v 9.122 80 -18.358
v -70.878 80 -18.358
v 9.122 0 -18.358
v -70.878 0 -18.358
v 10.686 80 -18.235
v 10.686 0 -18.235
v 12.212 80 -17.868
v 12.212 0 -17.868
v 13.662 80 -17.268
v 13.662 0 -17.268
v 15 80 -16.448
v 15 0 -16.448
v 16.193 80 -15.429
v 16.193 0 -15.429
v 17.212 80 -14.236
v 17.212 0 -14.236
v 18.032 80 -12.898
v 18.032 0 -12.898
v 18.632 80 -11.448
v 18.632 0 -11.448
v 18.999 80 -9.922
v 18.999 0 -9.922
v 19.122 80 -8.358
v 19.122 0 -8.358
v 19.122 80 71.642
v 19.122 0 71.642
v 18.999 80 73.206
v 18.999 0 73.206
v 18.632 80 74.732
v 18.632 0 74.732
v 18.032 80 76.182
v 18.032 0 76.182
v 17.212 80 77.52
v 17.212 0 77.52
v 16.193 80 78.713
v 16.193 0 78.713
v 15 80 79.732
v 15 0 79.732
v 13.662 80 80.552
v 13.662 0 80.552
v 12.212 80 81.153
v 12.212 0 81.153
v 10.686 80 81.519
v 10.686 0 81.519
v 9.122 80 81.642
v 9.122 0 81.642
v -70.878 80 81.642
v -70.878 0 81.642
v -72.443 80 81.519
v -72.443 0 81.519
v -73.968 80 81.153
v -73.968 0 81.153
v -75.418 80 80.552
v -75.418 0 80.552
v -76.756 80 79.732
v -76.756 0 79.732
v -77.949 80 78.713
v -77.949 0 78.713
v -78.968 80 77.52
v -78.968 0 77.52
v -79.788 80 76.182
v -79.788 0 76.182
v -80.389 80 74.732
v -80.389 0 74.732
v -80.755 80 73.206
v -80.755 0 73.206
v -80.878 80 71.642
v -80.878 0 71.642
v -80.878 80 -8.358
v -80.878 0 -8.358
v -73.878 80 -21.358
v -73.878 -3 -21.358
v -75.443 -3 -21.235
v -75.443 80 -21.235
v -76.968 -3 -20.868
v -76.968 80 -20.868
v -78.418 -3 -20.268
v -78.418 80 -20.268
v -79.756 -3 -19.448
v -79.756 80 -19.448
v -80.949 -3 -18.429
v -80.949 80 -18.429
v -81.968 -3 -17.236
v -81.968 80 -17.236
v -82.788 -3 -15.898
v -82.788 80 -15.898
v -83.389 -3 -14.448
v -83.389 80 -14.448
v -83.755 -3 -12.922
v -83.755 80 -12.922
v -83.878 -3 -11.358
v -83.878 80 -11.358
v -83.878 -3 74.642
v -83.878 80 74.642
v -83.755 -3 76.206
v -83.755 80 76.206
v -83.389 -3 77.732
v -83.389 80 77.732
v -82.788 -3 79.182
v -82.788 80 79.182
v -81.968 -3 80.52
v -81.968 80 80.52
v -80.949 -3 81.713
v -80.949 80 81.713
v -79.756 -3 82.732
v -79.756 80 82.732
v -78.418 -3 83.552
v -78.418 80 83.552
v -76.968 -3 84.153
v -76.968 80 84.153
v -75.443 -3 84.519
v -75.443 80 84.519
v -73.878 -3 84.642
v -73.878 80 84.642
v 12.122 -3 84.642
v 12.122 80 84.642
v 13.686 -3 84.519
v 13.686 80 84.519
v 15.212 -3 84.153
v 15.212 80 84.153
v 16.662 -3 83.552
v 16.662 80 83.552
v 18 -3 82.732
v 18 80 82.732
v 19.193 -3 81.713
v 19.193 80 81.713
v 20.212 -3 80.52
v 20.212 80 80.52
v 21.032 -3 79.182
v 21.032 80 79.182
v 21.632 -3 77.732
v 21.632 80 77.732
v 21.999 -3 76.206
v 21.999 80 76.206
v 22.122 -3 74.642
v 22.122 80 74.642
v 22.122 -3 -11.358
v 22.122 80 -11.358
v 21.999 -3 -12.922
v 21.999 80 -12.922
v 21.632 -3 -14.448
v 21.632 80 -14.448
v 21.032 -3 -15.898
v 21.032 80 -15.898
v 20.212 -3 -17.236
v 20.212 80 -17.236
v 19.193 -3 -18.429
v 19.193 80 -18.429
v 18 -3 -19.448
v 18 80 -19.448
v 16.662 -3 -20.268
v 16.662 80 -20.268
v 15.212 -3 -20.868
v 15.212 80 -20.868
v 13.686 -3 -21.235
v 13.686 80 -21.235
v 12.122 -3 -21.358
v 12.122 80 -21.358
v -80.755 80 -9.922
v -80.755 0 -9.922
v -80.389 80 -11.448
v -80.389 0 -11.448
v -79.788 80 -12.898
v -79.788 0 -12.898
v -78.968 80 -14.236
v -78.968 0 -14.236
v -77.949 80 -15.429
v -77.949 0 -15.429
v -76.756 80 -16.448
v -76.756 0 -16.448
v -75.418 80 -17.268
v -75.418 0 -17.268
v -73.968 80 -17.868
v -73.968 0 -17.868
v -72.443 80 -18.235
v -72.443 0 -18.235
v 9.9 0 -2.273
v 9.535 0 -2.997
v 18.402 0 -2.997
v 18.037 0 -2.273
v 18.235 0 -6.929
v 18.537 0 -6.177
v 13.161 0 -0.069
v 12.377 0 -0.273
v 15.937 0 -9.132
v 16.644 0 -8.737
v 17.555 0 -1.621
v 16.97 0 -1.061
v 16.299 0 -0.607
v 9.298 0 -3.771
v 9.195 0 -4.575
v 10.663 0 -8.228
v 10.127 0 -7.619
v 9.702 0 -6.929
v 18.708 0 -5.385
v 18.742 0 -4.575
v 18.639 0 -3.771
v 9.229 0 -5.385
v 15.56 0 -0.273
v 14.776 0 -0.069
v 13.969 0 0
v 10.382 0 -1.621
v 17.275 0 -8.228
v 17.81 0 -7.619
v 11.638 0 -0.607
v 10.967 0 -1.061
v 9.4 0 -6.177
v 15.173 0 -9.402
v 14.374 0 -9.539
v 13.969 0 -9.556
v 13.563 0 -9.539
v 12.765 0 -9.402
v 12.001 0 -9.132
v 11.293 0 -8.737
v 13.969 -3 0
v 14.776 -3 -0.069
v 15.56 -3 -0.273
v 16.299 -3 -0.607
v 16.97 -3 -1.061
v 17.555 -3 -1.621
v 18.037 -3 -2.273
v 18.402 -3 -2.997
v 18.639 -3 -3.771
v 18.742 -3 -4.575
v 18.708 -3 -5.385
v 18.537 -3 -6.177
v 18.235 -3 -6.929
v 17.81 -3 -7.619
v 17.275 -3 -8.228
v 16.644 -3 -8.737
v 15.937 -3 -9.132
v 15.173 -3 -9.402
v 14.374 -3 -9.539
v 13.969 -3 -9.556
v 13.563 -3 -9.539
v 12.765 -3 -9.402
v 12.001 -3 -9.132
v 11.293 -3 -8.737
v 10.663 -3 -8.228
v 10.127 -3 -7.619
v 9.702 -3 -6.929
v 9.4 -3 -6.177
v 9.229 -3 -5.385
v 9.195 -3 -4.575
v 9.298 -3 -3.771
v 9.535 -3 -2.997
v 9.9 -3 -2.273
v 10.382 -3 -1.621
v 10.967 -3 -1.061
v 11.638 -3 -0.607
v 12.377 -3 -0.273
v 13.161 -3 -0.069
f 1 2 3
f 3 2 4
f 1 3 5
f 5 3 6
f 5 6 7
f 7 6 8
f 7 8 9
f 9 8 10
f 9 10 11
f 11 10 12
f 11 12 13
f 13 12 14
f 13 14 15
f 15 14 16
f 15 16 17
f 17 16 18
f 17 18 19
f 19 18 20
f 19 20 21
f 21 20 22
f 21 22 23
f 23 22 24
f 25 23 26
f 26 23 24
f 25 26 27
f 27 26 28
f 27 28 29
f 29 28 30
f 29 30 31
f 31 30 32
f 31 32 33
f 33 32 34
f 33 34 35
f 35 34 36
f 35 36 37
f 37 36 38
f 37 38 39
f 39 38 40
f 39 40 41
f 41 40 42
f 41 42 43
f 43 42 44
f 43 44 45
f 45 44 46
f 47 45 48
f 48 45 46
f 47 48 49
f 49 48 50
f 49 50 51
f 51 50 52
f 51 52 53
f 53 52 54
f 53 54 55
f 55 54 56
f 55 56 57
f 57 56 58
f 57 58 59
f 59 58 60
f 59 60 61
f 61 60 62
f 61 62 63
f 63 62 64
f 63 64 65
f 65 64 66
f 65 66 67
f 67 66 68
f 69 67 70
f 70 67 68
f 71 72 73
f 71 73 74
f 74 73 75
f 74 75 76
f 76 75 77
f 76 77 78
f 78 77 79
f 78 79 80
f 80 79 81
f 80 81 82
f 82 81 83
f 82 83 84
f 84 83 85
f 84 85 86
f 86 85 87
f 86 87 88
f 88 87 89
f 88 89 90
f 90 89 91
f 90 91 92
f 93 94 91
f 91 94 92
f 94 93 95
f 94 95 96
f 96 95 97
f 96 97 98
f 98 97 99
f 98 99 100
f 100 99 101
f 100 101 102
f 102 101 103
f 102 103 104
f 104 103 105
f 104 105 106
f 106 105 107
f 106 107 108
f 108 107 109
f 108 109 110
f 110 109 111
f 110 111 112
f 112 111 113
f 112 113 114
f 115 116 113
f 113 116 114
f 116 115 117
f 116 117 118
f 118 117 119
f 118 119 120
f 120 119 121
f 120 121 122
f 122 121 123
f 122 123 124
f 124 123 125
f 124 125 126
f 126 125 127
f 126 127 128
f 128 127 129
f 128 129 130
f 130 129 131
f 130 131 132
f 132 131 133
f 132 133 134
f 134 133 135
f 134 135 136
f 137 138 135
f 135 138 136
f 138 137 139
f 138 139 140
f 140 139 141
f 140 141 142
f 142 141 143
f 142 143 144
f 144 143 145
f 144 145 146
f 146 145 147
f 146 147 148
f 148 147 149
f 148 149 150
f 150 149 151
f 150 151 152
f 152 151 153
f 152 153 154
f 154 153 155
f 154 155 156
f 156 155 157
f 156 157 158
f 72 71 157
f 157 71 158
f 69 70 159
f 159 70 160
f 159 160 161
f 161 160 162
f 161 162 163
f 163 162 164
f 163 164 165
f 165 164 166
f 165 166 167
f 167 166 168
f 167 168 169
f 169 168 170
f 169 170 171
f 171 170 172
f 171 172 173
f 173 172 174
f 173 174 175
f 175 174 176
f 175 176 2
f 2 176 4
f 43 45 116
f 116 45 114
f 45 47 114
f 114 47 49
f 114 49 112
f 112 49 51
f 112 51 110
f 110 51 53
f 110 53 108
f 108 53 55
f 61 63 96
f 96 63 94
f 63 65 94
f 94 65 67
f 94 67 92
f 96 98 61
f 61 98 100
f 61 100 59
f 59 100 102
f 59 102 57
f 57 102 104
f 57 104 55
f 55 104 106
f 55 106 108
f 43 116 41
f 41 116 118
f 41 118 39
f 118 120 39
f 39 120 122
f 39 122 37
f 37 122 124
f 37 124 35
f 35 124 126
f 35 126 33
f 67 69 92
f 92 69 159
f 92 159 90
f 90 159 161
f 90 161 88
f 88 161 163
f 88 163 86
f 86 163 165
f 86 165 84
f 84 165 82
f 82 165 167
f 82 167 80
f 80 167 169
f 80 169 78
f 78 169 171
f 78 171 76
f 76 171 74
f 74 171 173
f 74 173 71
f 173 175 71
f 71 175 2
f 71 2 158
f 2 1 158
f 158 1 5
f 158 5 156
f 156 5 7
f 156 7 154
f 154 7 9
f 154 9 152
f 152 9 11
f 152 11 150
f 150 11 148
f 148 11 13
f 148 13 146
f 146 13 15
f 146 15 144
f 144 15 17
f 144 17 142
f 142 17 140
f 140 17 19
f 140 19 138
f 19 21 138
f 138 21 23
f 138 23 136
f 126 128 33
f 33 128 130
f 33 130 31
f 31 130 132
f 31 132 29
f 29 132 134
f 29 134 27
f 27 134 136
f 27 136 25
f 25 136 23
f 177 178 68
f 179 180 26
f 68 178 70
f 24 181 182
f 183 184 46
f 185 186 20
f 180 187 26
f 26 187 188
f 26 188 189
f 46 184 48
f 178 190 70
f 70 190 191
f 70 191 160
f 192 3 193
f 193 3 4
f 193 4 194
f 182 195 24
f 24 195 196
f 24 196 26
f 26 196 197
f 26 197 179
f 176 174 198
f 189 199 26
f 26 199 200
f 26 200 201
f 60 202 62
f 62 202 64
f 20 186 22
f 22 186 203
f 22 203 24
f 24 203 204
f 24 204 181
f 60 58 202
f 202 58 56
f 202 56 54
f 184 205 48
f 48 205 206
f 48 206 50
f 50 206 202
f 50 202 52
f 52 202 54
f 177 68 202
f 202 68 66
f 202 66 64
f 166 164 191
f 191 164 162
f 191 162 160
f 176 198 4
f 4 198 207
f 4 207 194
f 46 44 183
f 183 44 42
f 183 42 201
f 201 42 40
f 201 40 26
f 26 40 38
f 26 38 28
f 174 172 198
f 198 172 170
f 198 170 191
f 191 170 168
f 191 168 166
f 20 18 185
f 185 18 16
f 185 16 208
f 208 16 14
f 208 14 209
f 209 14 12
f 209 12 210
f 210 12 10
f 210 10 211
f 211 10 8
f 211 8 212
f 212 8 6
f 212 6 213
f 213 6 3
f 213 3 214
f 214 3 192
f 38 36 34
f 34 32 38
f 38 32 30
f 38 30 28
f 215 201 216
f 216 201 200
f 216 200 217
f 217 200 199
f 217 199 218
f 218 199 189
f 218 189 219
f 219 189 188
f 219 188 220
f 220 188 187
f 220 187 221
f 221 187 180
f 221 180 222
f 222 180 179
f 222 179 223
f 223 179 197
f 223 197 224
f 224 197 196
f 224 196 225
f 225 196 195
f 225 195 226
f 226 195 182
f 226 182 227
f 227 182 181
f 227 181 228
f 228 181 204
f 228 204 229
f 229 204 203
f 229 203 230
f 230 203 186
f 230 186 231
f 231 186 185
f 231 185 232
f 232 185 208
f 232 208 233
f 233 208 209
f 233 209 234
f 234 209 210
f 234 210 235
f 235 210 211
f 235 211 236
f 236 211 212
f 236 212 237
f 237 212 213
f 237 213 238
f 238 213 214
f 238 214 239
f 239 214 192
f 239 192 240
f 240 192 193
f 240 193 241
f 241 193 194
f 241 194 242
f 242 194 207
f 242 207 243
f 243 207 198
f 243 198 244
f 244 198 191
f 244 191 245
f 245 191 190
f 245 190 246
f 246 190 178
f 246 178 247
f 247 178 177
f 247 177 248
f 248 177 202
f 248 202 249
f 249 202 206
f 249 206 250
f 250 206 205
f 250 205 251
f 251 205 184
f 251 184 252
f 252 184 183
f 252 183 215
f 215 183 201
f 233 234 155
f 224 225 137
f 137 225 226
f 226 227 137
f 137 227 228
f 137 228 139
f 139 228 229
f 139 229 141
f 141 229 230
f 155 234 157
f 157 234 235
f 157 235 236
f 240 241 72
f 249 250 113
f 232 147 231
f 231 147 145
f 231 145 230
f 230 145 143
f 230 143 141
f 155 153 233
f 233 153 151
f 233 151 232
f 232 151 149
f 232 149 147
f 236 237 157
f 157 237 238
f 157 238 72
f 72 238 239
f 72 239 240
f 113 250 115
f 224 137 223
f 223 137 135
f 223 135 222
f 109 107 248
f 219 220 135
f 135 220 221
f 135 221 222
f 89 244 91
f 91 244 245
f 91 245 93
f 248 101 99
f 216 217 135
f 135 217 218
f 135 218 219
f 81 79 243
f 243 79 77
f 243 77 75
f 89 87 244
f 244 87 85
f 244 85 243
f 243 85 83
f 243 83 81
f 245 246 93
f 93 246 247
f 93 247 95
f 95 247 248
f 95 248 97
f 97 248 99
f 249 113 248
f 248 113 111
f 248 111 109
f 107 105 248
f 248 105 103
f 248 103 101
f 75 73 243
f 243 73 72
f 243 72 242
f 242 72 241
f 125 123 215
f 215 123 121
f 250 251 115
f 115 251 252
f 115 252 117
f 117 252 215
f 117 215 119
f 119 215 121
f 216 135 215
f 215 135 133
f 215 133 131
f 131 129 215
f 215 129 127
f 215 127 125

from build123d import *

# Parameters (mm, degrees)
BOSS_EXTRUDE1_DEPTH = 80
SKETCH2_R           = 4.778019897
BOSS_EXTRUDE4_DEPTH = 3


with BuildPart() as part:
    # Sketch1 → Boss-Extrude1 (new body)
    with BuildSketch(Plane(origin=(0, 0, 0), x_dir=(1, 0, 0), z_dir=(0, 1, 0))):
        with BuildLine():
            ThreePointArc((-83.878172589, 11.35786802), (-80.949240401, 18.428935832), (-73.878172589, 21.35786802))
            Line((-73.878172589, 21.35786802), (12.121827411, 21.35786802))
            ThreePointArc((12.121827411, 21.35786802), (19.192895223, 18.428935832), (22.121827411, 11.35786802))
            Line((22.121827411, 11.35786802), (22.121827411, -74.64213198))
            ThreePointArc((22.121827411, -74.64213198), (19.192895223, -81.713199792), (12.121827411, -84.64213198))
            Line((12.121827411, -84.64213198), (-73.878172589, -84.64213198))
            ThreePointArc((-73.878172589, -84.64213198), (-80.949240401, -81.713199792), (-83.878172589, -74.64213198))
            Line((-83.878172589, -74.64213198), (-83.878172589, 11.35786802))
        make_face()
        with BuildLine():
            Line((-70.878172589, 18.35786802), (9.121827411, 18.35786802))
            ThreePointArc((9.121827411, 18.35786802), (16.192895223, 15.428935832), (19.121827411, 8.35786802))
            Line((19.121827411, 8.35786802), (19.121827411, -71.64213198))
            ThreePointArc((19.121827411, -71.64213198), (16.192895223, -78.713199792), (9.121827411, -81.64213198))
            Line((9.121827411, -81.64213198), (-70.878172589, -81.64213198))
            ThreePointArc((-70.878172589, -81.64213198), (-77.949240401, -78.713199792), (-80.878172589, -71.64213198))
            Line((-80.878172589, -71.64213198), (-80.878172589, 8.35786802))
            ThreePointArc((-80.878172589, 8.35786802), (-77.949240401, 15.428935832), (-70.878172589, 18.35786802))
        make_face(mode=Mode.SUBTRACT)
    extrude(amount=BOSS_EXTRUDE1_DEPTH)

    # Sketch2 → Boss-Extrude4 (add)
    with BuildSketch(Plane.XZ):
        with BuildLine():
            Line((-83.878172589, 74.64213198), (-83.878172589, -11.35786802))
            ThreePointArc((-83.878172589, -11.35786802), (-80.949240401, -18.428935832), (-73.878172589, -21.35786802))
            Line((-73.878172589, -21.35786802), (12.121827411, -21.35786802))
            ThreePointArc((12.121827411, -21.35786802), (19.192895223, -18.428935832), (22.121827411, -11.35786802))
            Line((22.121827411, -11.35786802), (22.121827411, 74.64213198))
            ThreePointArc((22.121827411, 74.64213198), (19.192895223, 81.713199792), (12.121827411, 84.64213198))
            Line((12.121827411, 84.64213198), (-73.878172589, 84.64213198))
            ThreePointArc((-73.878172589, 84.64213198), (-80.949240401, 81.713199792), (-83.878172589, 74.64213198))
        make_face()
        with BuildLine():
            ThreePointArc((19.121827411, -8.35786802), (16.192895223, -15.428935832), (9.121827411, -18.35786802))
            Line((9.121827411, -18.35786802), (-70.878172589, -18.35786802))
            ThreePointArc((-70.878172589, -18.35786802), (-77.949240401, -15.428935832), (-80.878172589, -8.35786802))
            Line((-80.878172589, -8.35786802), (-80.878172589, 71.64213198))
            ThreePointArc((-80.878172589, 71.64213198), (-77.949240401, 78.713199792), (-70.878172589, 81.64213198))
            Line((-70.878172589, 81.64213198), (9.121827411, 81.64213198))
            ThreePointArc((9.121827411, 81.64213198), (16.192895223, 78.713199792), (19.121827411, 71.64213198))
            Line((19.121827411, 71.64213198), (19.121827411, -8.35786802))
        make_face(mode=Mode.SUBTRACT)
        with BuildLine():
            Line((9.121827411, -18.35786802), (-70.878172589, -18.35786802))
            ThreePointArc((-70.878172589, -18.35786802), (-77.949240401, -15.428935832), (-80.878172589, -8.35786802))
            Line((-80.878172589, -8.35786802), (-80.878172589, 71.64213198))
            ThreePointArc((-80.878172589, 71.64213198), (-77.949240401, 78.713199792), (-70.878172589, 81.64213198))
            Line((-70.878172589, 81.64213198), (9.121827411, 81.64213198))
            ThreePointArc((9.121827411, 81.64213198), (16.192895223, 78.713199792), (19.121827411, 71.64213198))
            Line((19.121827411, 71.64213198), (19.121827411, -8.35786802))
            ThreePointArc((19.121827411, -8.35786802), (16.192895223, -15.428935832), (9.121827411, -18.35786802))
        make_face()
        with Locations(Location((13.968668107, -4.778019897, 0), (0, 0, 270))):
            Circle(SKETCH2_R, mode=Mode.SUBTRACT)
    extrude(amount=BOSS_EXTRUDE4_DEPTH)


solid = part.part
